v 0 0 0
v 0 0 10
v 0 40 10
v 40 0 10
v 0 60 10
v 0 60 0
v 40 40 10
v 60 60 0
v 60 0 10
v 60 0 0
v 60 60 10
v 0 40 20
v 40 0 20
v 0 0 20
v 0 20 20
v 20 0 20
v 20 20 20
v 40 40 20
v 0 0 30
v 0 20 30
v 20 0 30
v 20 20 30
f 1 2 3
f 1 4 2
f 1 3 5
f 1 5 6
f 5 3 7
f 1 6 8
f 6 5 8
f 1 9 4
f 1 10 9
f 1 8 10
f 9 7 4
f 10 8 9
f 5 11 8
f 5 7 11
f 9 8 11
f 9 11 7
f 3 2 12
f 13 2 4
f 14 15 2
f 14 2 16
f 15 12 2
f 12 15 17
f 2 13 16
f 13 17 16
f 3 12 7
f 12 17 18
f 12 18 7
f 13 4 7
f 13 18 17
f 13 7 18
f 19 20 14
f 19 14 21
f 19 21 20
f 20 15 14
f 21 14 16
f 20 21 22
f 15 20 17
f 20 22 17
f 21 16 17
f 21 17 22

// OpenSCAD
union() {
    // 1段目（底辺：60x60x10） - Z=0から開始
    translate([0, 0, 0]) {
        cube([60, 60, 10]);
    }

    // 2段目（中段：40x40x10） - 底面がZ=10に位置するように移動
    translate([0, 0, 10]) {
        cube([40, 40, 10]);
    }

    // 3段目（頂点：20x20x10） - 底面がZ=20に位置するように移動
    translate([0, 0, 20]) {
        cube([20, 20, 10]);
    }
}
